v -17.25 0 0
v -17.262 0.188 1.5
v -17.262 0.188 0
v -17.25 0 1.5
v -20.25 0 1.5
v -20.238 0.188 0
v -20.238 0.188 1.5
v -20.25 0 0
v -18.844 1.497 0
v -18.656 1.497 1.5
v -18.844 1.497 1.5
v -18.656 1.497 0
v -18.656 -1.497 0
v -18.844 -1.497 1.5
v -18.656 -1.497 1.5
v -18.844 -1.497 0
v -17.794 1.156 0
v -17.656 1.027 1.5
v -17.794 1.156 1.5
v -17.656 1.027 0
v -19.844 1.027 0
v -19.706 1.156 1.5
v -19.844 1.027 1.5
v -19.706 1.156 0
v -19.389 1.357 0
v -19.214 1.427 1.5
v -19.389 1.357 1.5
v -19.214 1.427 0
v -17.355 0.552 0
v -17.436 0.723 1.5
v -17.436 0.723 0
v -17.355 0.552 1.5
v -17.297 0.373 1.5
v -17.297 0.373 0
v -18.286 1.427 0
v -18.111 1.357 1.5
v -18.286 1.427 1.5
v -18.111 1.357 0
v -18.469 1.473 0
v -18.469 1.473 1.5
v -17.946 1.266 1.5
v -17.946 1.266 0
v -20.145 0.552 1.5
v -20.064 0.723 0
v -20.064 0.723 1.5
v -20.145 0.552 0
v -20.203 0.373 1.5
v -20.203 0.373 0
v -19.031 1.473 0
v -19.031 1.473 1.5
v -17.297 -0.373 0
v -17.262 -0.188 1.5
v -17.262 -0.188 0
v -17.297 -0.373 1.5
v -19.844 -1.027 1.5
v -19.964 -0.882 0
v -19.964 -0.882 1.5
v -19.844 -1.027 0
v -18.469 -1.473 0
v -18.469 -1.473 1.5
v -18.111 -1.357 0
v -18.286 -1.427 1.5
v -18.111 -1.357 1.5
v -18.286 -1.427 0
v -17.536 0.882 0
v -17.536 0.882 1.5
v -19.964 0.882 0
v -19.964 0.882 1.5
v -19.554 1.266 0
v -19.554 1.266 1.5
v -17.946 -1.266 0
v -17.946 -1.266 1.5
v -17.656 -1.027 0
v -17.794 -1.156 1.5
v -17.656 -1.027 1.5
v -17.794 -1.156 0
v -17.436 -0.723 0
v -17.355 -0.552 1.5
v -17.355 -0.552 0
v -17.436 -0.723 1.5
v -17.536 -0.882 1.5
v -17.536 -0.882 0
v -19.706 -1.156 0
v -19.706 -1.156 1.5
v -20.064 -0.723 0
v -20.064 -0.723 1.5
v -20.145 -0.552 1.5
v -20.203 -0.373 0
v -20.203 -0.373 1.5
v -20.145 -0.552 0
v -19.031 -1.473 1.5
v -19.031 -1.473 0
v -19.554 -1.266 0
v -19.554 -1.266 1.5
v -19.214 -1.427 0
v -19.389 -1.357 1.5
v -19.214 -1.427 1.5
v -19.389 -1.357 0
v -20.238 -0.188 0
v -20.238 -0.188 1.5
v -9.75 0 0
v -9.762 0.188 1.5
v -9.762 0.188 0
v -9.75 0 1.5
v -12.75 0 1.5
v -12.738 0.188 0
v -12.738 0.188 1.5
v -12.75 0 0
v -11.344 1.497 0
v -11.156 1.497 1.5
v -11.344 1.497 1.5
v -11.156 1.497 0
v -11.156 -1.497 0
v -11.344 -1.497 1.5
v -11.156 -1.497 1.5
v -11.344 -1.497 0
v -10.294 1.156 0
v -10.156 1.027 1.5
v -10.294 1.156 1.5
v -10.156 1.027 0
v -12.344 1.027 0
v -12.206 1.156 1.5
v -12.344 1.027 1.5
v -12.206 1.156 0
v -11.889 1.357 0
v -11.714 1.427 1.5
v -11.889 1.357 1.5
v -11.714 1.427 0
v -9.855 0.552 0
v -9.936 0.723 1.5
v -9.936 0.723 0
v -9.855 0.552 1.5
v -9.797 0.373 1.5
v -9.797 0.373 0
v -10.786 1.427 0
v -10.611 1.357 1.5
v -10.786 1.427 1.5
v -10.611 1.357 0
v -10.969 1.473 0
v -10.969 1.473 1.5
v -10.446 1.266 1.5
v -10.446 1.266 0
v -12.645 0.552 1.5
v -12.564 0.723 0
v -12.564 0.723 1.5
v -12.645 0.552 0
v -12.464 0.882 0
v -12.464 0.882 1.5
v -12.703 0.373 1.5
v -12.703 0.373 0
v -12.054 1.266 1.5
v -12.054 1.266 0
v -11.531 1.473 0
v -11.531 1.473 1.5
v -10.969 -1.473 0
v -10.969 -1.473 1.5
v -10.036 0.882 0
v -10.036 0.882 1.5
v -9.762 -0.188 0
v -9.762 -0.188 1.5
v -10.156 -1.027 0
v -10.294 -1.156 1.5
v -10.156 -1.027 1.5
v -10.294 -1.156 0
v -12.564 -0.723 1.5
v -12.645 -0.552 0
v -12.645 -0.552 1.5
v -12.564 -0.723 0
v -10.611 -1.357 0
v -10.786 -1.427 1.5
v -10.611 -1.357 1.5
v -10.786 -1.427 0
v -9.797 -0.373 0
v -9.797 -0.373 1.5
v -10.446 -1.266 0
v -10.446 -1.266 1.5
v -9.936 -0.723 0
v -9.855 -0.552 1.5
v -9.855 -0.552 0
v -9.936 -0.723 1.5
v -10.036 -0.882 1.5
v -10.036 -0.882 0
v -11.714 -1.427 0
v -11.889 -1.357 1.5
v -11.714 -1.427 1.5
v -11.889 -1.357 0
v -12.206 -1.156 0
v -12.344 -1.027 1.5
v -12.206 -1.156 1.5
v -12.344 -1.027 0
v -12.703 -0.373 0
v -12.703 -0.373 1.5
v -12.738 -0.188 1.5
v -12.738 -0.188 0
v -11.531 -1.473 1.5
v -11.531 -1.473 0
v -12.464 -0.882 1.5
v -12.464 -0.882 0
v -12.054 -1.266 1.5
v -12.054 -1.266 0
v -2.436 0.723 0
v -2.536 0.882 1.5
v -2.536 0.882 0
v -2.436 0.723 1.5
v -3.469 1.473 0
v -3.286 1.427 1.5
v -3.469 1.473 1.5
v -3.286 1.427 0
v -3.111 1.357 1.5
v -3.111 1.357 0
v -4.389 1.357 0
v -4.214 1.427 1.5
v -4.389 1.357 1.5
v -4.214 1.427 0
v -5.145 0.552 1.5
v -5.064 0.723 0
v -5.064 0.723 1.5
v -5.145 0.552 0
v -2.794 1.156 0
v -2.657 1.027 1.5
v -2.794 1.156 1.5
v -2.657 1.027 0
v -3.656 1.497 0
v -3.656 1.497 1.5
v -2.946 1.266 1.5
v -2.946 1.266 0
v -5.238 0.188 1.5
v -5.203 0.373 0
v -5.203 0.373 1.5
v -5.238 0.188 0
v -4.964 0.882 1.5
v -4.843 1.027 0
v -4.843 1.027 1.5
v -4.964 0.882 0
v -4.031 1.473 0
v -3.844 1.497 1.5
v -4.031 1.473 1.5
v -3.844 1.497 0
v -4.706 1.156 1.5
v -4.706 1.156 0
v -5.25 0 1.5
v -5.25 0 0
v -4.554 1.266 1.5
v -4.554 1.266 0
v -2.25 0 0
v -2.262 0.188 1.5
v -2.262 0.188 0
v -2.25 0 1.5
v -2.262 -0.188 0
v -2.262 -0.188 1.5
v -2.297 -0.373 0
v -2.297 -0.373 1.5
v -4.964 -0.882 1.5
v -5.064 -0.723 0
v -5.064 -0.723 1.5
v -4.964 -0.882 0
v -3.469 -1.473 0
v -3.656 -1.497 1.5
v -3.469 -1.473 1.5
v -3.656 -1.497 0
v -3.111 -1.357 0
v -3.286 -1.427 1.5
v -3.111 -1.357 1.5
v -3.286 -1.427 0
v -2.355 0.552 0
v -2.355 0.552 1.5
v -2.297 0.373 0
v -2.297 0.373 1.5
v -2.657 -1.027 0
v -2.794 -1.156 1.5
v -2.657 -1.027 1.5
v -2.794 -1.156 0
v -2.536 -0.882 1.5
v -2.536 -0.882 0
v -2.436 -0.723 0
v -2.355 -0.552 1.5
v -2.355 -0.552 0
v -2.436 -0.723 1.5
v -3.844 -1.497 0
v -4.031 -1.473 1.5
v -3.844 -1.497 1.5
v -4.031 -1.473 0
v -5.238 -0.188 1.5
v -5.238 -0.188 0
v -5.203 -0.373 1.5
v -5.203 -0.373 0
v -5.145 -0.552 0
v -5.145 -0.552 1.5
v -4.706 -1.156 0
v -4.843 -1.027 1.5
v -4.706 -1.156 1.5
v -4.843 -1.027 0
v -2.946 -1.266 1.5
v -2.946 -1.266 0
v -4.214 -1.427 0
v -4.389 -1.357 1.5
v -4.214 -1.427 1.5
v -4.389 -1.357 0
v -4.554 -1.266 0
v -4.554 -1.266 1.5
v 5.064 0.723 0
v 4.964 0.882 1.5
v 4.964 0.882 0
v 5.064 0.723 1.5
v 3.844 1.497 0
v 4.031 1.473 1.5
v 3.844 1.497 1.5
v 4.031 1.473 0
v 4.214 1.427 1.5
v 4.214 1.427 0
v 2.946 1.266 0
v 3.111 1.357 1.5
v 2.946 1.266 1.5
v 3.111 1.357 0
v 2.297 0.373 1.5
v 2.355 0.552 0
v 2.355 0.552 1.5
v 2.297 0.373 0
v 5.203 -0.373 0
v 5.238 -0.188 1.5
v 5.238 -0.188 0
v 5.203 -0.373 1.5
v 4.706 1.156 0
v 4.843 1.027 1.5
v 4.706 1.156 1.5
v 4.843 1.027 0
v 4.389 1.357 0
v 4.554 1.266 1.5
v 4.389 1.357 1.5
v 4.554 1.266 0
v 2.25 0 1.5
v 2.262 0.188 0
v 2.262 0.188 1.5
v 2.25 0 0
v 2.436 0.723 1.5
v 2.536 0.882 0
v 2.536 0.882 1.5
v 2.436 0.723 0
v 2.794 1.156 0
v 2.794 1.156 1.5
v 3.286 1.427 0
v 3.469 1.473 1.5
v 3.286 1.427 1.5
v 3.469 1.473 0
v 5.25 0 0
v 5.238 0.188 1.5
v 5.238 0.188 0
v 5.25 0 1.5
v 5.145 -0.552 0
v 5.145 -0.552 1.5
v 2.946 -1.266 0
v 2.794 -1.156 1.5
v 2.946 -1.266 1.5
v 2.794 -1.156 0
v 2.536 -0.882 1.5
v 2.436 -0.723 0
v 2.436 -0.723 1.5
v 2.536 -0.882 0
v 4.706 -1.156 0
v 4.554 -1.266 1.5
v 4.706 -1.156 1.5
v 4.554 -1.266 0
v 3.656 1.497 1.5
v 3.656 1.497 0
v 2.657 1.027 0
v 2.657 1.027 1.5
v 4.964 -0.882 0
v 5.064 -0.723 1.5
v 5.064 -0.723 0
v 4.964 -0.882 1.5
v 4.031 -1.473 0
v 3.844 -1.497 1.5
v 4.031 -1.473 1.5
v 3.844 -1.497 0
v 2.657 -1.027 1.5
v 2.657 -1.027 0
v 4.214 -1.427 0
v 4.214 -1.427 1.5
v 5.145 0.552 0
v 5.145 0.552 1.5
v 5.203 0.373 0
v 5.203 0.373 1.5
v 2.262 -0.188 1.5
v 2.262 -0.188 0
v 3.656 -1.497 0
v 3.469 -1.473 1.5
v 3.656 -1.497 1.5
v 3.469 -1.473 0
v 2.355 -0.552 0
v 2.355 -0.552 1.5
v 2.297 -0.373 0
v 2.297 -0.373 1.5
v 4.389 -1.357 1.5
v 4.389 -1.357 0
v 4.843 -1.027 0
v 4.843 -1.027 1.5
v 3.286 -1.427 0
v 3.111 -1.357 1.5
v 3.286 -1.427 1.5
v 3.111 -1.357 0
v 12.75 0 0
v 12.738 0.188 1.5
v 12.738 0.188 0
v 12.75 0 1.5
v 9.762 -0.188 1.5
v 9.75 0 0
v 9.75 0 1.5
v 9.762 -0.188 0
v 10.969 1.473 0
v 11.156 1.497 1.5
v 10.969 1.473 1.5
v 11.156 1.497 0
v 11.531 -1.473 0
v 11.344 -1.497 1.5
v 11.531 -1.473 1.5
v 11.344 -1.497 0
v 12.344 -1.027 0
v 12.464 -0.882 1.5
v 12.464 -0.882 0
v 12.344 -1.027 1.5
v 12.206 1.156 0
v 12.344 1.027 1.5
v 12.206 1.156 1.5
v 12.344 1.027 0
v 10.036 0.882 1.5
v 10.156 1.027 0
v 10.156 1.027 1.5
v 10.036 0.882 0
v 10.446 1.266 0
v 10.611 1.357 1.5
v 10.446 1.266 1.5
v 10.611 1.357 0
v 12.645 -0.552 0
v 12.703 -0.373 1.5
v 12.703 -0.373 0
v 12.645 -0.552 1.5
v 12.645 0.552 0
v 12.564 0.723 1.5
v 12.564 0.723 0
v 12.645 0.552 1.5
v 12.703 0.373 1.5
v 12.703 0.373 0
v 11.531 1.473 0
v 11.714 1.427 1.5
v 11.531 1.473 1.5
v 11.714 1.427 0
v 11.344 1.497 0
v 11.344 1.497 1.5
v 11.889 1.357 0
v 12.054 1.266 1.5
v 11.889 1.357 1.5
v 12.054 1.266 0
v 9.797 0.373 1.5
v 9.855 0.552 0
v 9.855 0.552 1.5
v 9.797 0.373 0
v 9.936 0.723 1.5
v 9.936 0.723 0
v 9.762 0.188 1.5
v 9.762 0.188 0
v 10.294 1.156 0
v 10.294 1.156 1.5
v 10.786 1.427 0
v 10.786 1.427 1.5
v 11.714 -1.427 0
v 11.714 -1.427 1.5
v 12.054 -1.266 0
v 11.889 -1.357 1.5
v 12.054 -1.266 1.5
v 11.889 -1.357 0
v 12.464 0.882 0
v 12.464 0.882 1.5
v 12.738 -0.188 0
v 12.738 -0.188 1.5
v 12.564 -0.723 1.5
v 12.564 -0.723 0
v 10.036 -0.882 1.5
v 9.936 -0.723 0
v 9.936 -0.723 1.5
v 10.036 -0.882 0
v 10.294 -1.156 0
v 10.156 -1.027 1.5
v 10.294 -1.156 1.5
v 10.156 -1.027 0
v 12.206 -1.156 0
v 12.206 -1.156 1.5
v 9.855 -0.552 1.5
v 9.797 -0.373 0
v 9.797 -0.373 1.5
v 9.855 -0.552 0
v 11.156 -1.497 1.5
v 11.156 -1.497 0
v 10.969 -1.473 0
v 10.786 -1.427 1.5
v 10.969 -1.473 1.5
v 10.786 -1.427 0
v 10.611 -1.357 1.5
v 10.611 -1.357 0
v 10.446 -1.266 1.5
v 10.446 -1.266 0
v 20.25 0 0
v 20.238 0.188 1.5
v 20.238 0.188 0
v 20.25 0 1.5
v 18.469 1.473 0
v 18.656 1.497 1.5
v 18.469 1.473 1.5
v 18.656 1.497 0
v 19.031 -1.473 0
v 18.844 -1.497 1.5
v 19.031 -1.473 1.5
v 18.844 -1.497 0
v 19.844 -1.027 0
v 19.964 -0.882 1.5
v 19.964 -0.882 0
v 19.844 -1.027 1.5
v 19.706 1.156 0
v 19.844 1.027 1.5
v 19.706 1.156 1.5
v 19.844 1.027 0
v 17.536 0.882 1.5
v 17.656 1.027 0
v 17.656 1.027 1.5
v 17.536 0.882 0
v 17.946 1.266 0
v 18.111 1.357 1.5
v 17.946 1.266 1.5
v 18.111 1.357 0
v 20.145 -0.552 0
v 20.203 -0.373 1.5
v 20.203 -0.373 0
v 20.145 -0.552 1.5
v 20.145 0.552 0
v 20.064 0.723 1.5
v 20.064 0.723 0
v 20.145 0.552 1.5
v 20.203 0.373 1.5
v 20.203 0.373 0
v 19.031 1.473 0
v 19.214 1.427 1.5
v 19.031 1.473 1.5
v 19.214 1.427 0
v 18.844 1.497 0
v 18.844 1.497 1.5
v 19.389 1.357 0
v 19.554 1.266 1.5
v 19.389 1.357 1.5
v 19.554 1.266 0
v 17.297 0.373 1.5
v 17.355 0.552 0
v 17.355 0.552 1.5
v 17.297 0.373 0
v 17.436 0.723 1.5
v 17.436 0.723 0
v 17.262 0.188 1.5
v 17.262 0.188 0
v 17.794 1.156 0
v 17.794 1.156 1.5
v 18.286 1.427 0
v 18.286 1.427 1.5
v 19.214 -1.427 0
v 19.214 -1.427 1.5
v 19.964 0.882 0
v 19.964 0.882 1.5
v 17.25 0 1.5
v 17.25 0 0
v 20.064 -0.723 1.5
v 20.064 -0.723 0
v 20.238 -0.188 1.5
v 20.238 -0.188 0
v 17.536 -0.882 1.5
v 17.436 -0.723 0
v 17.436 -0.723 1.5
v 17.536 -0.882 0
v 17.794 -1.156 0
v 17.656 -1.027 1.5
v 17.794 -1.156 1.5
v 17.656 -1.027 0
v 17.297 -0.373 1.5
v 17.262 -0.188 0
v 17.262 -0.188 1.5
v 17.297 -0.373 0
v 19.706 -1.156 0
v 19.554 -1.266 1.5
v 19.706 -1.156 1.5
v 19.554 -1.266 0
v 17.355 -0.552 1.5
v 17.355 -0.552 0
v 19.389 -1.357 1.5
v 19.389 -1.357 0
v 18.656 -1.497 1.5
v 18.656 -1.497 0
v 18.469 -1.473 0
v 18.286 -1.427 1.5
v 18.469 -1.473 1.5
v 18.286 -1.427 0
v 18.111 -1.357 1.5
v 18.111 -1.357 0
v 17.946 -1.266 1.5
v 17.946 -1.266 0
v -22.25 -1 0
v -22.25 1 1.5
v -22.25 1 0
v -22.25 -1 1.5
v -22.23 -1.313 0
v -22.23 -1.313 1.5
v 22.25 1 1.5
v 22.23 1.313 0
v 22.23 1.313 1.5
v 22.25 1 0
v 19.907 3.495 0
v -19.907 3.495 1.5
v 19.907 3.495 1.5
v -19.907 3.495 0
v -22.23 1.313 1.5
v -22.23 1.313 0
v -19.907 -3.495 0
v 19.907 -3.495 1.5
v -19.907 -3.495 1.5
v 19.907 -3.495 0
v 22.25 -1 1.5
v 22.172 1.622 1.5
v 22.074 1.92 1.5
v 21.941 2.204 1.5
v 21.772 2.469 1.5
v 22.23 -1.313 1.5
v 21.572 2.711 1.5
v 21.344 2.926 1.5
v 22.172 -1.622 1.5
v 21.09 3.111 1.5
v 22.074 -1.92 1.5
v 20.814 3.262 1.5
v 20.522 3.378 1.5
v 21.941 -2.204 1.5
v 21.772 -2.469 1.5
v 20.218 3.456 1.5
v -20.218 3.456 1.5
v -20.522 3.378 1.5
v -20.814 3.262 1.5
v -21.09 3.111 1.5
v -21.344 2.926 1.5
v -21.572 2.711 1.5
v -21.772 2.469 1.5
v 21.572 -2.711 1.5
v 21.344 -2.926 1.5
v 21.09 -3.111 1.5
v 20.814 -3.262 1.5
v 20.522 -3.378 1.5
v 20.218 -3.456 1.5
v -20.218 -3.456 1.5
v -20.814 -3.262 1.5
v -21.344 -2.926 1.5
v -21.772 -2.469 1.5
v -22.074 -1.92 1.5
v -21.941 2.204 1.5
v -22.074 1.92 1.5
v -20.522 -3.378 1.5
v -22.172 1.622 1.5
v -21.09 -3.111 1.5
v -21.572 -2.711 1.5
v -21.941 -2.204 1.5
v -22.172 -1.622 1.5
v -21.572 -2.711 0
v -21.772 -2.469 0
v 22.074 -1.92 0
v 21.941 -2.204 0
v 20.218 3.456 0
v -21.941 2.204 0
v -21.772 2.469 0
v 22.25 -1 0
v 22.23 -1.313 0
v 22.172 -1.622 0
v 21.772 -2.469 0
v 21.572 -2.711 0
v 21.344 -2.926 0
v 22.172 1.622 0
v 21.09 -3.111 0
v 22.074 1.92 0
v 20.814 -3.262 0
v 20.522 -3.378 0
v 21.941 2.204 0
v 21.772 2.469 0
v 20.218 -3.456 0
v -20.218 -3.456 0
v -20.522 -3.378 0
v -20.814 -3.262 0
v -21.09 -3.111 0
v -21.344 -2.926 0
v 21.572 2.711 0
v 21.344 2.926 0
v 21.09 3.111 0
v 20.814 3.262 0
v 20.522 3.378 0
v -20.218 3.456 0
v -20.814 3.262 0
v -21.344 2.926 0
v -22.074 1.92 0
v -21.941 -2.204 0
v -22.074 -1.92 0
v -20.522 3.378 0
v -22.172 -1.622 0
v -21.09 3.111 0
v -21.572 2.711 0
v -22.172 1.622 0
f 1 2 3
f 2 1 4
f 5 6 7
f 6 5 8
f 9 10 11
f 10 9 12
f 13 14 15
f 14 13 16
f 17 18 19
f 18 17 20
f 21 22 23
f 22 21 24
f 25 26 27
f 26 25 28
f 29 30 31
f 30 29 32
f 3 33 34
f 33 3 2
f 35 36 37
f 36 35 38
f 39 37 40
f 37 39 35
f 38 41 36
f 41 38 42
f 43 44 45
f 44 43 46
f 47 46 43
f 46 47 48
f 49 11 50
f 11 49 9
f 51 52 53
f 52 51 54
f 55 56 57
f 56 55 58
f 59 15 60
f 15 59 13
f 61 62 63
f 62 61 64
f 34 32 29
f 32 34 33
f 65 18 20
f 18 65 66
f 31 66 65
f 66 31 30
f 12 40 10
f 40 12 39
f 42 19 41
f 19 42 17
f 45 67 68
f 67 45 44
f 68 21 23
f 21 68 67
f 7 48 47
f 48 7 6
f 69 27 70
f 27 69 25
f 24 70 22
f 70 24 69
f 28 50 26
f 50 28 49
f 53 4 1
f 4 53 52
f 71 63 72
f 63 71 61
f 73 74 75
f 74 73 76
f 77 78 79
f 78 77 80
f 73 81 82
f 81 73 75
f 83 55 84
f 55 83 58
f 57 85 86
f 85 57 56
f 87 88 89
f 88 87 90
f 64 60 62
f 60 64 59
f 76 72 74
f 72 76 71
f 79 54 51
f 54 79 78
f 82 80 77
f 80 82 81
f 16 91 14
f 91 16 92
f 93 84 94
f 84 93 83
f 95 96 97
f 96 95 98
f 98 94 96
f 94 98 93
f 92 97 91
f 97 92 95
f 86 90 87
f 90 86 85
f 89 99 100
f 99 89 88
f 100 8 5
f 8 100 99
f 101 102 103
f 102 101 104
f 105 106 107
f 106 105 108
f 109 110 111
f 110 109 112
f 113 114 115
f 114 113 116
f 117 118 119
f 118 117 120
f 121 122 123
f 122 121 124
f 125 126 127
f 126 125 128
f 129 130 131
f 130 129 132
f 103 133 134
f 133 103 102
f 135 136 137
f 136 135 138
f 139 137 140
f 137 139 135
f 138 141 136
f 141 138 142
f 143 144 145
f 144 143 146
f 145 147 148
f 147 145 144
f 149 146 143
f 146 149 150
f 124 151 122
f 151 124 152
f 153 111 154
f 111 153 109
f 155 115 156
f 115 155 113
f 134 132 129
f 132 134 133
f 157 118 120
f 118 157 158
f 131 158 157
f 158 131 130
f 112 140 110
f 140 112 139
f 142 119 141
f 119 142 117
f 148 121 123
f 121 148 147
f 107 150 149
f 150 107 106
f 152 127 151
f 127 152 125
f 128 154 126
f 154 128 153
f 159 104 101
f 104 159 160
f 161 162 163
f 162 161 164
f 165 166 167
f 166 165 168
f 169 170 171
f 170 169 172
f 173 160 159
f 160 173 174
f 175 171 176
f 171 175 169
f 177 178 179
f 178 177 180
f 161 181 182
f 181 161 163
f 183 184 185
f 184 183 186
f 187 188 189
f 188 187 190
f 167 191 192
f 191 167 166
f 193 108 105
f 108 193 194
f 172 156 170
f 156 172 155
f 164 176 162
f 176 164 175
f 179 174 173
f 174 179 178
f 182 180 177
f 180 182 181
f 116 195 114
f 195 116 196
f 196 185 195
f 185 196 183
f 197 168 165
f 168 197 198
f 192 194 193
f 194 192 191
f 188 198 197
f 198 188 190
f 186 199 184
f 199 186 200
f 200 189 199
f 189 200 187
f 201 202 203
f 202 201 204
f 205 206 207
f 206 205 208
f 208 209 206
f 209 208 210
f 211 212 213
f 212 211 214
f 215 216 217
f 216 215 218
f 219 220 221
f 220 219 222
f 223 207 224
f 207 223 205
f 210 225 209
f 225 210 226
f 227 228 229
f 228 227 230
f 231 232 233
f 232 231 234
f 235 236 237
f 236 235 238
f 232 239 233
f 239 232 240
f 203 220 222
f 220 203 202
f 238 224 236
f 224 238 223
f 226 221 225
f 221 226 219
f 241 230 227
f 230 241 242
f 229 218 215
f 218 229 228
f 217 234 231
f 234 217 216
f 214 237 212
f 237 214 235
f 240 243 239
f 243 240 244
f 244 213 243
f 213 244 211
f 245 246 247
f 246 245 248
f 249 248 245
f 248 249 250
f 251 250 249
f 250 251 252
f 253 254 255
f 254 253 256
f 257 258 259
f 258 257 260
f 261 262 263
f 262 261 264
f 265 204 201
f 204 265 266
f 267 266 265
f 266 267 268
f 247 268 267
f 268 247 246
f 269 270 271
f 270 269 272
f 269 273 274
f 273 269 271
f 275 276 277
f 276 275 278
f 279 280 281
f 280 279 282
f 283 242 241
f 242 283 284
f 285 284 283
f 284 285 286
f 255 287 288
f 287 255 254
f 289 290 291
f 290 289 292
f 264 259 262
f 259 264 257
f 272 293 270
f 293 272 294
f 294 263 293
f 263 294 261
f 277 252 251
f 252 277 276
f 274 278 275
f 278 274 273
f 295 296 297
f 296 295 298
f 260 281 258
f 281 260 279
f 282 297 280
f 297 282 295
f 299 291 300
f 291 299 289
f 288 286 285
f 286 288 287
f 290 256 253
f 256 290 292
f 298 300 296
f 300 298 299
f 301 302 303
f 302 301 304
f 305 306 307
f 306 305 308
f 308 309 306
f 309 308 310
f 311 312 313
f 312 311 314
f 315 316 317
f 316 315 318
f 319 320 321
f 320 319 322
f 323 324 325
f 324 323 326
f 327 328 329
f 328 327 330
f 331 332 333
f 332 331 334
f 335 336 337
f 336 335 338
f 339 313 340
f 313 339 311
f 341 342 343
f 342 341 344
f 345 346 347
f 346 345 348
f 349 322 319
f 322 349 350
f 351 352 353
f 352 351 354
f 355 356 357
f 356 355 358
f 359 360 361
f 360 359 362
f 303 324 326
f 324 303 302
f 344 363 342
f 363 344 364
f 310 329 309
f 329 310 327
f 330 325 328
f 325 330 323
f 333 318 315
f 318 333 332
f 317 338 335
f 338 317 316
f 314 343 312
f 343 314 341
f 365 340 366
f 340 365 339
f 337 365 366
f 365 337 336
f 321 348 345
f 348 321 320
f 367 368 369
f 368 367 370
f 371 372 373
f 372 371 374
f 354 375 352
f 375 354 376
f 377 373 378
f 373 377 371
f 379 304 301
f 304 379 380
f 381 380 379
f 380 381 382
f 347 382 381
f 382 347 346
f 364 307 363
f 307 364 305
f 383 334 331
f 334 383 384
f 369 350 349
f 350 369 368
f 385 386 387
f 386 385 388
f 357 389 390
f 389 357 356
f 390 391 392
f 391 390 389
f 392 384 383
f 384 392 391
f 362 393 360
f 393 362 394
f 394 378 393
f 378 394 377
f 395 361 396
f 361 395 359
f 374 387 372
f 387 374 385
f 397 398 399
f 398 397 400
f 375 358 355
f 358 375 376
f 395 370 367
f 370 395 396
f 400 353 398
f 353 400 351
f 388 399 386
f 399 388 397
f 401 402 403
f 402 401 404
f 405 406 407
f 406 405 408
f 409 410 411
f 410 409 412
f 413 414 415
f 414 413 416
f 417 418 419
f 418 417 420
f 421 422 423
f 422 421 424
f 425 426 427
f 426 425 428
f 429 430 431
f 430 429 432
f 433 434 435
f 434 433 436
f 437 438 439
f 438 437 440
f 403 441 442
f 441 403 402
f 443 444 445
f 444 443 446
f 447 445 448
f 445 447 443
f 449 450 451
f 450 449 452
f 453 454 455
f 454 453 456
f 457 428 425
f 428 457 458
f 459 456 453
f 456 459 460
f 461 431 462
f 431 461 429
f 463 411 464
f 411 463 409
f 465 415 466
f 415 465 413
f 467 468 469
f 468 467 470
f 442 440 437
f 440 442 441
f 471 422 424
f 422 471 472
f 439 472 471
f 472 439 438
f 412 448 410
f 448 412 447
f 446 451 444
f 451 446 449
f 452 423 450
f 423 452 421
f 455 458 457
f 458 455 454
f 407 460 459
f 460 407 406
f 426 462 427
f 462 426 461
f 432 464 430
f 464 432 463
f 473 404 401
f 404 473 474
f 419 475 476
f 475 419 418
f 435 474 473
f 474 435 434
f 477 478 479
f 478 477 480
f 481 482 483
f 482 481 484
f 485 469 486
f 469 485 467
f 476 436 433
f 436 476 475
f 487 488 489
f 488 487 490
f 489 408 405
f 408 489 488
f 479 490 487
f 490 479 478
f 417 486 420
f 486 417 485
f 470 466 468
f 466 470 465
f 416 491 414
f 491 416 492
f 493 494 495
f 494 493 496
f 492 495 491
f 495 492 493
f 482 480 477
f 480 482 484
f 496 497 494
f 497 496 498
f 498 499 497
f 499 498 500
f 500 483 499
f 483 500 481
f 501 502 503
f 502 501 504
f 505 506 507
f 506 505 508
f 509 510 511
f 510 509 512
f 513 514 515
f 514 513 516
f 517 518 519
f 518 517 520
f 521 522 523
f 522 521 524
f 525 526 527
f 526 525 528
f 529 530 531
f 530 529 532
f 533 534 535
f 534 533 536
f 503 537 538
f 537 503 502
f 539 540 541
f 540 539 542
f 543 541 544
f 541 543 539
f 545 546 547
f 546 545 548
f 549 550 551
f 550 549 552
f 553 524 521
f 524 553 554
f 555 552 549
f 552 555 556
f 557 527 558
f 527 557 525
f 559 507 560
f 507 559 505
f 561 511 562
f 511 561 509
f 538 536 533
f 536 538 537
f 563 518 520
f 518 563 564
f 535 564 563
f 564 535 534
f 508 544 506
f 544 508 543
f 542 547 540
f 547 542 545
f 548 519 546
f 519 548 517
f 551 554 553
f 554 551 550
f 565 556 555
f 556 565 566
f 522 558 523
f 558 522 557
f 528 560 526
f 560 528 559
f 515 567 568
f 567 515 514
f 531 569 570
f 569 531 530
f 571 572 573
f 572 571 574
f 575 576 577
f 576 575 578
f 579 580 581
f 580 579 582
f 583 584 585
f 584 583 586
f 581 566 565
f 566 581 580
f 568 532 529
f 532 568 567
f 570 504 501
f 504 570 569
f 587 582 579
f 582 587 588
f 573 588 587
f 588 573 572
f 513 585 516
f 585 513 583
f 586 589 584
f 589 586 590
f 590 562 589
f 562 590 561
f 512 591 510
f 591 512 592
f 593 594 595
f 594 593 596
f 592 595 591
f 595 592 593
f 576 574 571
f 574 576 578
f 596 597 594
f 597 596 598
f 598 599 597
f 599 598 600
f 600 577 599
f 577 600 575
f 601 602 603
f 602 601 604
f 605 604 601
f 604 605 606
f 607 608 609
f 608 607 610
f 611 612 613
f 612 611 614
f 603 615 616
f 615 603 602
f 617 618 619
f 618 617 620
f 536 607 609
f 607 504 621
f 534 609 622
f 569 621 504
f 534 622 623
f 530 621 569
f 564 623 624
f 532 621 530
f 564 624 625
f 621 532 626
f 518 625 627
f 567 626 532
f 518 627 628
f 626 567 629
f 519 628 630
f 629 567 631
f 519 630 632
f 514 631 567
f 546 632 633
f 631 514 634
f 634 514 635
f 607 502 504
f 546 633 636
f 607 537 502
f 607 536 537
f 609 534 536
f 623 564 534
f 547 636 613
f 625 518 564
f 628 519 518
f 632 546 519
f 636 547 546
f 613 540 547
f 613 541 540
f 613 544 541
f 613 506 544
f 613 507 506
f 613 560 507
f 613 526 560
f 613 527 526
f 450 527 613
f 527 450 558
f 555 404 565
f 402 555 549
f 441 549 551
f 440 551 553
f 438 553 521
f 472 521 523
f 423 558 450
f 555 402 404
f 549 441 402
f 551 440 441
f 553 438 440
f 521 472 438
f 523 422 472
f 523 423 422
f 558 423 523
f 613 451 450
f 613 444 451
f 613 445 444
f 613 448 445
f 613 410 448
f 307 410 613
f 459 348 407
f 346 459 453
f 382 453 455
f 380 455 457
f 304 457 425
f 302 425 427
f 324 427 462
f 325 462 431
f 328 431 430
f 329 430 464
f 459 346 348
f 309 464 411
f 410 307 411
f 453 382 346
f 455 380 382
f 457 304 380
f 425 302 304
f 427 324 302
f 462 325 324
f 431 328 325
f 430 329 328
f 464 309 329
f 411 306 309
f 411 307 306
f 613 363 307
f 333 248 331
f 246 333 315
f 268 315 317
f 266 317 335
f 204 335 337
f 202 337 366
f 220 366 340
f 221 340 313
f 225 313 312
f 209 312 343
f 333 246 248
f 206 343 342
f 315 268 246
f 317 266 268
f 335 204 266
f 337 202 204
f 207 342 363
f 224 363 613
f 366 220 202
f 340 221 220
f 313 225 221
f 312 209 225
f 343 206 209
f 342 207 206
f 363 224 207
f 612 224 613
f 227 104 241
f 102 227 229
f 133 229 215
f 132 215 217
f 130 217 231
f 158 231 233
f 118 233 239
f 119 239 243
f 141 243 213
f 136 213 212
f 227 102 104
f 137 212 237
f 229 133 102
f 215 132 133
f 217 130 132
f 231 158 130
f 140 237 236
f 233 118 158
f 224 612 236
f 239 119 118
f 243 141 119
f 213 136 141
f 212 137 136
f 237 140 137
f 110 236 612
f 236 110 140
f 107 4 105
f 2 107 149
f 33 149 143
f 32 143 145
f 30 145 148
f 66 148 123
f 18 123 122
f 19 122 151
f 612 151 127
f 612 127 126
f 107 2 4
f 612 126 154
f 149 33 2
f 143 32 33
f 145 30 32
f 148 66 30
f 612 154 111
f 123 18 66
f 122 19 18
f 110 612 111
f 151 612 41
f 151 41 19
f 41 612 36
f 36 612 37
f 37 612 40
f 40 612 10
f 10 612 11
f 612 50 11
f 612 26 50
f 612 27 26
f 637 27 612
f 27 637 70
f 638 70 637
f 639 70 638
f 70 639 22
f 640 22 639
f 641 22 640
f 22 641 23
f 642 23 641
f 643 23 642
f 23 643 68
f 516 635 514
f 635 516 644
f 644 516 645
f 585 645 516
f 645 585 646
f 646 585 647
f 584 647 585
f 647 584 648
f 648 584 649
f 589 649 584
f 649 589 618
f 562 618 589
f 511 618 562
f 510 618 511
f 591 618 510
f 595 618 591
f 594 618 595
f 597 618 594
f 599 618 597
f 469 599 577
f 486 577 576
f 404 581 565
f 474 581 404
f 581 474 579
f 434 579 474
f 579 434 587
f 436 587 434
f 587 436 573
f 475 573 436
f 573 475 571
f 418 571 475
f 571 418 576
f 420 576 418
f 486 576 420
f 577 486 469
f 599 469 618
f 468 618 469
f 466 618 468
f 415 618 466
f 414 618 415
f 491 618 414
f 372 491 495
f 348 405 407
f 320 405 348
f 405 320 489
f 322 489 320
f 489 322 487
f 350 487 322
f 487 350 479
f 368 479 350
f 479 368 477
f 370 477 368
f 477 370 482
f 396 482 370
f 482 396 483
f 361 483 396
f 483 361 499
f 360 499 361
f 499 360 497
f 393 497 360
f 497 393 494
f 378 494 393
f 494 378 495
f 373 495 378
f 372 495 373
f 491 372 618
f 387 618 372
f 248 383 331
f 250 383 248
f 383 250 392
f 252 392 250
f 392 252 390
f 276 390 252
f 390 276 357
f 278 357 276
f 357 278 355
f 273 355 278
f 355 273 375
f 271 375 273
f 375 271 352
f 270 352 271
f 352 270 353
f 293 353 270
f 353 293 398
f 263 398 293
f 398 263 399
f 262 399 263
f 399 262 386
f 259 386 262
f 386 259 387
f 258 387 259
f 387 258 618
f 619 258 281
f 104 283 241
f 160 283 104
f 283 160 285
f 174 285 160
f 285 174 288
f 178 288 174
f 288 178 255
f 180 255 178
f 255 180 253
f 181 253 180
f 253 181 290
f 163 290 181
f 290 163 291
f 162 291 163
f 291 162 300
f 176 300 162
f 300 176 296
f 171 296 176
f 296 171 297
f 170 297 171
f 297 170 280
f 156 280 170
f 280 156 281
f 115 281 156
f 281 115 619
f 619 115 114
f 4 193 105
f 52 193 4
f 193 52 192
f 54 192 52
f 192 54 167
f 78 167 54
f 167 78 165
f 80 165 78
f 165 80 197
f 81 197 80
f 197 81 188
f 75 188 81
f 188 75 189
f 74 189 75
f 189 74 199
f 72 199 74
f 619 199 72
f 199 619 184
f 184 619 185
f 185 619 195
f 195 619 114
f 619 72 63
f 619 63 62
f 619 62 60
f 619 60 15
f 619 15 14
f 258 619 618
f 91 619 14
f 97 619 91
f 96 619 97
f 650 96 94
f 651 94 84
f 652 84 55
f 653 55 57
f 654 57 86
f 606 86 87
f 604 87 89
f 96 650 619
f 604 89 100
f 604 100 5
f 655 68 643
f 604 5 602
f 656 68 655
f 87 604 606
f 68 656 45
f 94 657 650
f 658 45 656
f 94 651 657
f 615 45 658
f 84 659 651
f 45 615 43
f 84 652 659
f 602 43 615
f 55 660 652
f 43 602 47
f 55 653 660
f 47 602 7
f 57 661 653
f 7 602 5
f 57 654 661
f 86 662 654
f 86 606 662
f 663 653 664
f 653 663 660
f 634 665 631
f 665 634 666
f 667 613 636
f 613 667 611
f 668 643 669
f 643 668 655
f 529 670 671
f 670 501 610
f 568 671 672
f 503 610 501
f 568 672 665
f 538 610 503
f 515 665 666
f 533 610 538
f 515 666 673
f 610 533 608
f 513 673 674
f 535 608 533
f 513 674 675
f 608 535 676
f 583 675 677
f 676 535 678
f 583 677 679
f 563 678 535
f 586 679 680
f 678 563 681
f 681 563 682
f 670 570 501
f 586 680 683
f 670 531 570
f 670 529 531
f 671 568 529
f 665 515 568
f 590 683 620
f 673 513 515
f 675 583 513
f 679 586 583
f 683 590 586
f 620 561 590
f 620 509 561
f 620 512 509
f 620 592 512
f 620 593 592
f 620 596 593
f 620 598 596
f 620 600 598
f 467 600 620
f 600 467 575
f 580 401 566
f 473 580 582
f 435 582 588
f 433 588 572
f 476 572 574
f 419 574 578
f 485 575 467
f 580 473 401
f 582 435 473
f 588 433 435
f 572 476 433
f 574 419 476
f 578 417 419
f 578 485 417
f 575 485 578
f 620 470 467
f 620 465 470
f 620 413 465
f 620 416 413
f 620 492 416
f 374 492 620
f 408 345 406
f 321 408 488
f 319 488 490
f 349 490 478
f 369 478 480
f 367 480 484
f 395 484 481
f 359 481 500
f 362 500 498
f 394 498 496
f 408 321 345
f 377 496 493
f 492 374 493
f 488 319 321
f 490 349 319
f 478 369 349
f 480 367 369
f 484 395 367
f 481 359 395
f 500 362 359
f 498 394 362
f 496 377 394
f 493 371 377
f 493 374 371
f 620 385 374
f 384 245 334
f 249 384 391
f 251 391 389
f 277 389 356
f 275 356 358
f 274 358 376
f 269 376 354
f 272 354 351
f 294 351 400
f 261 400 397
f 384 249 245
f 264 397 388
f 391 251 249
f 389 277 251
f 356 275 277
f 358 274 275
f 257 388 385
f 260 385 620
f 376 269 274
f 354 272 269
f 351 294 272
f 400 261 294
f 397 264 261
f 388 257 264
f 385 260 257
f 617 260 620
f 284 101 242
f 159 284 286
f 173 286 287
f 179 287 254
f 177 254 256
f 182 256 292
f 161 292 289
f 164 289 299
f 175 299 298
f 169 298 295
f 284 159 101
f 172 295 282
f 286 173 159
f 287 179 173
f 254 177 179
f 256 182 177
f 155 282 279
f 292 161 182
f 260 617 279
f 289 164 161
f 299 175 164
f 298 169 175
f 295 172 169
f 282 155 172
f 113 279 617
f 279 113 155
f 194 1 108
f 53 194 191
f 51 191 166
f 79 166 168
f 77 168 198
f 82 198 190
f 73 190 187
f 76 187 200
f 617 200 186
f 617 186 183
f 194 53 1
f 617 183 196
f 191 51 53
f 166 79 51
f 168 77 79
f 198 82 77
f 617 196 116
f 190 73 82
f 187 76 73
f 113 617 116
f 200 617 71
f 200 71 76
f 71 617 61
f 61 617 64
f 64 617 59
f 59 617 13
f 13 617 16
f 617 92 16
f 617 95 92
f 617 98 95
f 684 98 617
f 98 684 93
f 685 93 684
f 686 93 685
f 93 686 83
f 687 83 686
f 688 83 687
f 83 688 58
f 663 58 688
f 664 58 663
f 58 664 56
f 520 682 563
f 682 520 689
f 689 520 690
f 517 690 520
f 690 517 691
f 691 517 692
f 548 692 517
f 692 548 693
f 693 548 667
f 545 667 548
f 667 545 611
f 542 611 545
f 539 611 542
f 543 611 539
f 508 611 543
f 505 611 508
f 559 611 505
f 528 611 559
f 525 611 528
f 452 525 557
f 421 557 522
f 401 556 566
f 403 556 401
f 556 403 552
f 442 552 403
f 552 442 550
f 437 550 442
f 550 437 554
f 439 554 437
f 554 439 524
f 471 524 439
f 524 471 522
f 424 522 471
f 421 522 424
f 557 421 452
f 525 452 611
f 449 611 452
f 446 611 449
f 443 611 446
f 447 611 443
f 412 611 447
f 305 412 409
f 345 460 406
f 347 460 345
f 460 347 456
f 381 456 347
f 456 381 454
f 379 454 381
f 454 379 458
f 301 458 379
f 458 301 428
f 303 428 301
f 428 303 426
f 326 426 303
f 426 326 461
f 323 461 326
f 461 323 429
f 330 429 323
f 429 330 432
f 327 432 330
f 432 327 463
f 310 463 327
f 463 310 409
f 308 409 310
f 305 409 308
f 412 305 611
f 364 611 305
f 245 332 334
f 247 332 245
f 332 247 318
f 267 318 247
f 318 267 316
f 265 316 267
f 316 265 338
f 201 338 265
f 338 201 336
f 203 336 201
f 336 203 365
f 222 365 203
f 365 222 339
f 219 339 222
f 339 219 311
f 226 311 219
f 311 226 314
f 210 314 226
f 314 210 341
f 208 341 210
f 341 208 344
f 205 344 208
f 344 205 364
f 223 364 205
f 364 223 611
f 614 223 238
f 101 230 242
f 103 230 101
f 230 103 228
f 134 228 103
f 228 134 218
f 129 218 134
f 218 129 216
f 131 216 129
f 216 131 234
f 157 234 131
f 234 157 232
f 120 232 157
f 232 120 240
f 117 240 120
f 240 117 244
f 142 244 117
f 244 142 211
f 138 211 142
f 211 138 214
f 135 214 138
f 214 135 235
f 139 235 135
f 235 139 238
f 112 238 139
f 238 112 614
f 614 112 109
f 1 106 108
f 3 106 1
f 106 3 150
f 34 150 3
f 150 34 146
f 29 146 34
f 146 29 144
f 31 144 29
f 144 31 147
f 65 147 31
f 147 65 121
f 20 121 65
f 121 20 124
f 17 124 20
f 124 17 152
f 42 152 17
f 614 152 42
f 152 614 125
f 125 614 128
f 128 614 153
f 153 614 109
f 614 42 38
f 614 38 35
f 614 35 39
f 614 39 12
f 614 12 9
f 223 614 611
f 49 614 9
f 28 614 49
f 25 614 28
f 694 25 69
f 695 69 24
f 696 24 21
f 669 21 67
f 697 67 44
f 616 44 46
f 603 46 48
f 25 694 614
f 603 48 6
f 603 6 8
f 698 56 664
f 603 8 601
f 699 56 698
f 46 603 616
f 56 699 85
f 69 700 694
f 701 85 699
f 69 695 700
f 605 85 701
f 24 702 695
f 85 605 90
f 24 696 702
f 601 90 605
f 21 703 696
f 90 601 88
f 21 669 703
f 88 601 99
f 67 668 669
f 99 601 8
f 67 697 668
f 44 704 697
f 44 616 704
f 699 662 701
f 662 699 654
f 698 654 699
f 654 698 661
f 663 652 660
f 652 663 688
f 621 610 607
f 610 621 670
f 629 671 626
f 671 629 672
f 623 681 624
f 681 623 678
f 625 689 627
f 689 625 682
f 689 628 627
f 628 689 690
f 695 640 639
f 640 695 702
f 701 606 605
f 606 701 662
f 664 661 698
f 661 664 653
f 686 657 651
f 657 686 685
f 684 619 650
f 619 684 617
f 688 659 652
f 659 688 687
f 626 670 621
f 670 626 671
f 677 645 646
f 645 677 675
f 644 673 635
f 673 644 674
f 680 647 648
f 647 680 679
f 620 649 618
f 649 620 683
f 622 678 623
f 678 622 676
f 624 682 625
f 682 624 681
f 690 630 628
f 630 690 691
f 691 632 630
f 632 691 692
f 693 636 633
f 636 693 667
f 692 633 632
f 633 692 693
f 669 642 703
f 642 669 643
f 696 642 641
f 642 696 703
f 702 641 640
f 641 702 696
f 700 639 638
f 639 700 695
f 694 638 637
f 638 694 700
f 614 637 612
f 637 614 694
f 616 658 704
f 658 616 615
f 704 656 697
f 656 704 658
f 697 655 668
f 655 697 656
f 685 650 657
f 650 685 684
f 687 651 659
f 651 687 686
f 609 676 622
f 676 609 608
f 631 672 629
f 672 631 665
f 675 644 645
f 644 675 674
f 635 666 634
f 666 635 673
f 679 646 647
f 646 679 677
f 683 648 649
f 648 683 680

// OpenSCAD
$fn = 50;


difference() {
	union() {
		translate(v = [0, 0, 0]) {
			rotate(a = [0, 0, 0]) {
				hull() {
					translate(v = [-19.7500000000, 1.0000000000, 0]) {
						rotate(a = [0, 0, 0]) {
							translate(v = [0, 0, 0]) {
								rotate(a = [0, 0, 0]) {
									cylinder(h = 1.5000000000, r = 2.5000000000);
								}
							}
						}
					}
					translate(v = [19.7500000000, 1.0000000000, 0]) {
						rotate(a = [0, 0, 0]) {
							translate(v = [0, 0, 0]) {
								rotate(a = [0, 0, 0]) {
									cylinder(h = 1.5000000000, r = 2.5000000000);
								}
							}
						}
					}
					translate(v = [-19.7500000000, -1.0000000000, 0]) {
						rotate(a = [0, 0, 0]) {
							translate(v = [0, 0, 0]) {
								rotate(a = [0, 0, 0]) {
									cylinder(h = 1.5000000000, r = 2.5000000000);
								}
							}
						}
					}
					translate(v = [19.7500000000, -1.0000000000, 0]) {
						rotate(a = [0, 0, 0]) {
							translate(v = [0, 0, 0]) {
								rotate(a = [0, 0, 0]) {
									cylinder(h = 1.5000000000, r = 2.5000000000);
								}
							}
						}
					}
				}
			}
		}
	}
	union() {
		translate(v = [-18.7500000000, 0.0000000000, 0]) {
			rotate(a = [0, 0, 0]) {
				translate(v = [0, 0, -50]) {
					rotate(a = [0, 0, 0]) {
						cylinder(h = 100, r = 1.5000000000);
					}
				}
			}
		}
		translate(v = [-11.2500000000, 0.0000000000, 0]) {
			rotate(a = [0, 0, 0]) {
				translate(v = [0, 0, -50]) {
					rotate(a = [0, 0, 0]) {
						cylinder(h = 100, r = 1.5000000000);
					}
				}
			}
		}
		translate(v = [-3.7500000000, 0.0000000000, 0]) {
			rotate(a = [0, 0, 0]) {
				translate(v = [0, 0, -50]) {
					rotate(a = [0, 0, 0]) {
						cylinder(h = 100, r = 1.5000000000);
					}
				}
			}
		}
		translate(v = [3.7500000000, 0.0000000000, 0]) {
			rotate(a = [0, 0, 0]) {
				translate(v = [0, 0, -50]) {
					rotate(a = [0, 0, 0]) {
						cylinder(h = 100, r = 1.5000000000);
					}
				}
			}
		}
		translate(v = [11.2500000000, 0.0000000000, 0]) {
			rotate(a = [0, 0, 0]) {
				translate(v = [0, 0, -50]) {
					rotate(a = [0, 0, 0]) {
						cylinder(h = 100, r = 1.5000000000);
					}
				}
			}
		}
		translate(v = [18.7500000000, 0.0000000000, 0]) {
			rotate(a = [0, 0, 0]) {
				translate(v = [0, 0, -50]) {
					rotate(a = [0, 0, 0]) {
						cylinder(h = 100, r = 1.5000000000);
					}
				}
			}
		}
	}
}
